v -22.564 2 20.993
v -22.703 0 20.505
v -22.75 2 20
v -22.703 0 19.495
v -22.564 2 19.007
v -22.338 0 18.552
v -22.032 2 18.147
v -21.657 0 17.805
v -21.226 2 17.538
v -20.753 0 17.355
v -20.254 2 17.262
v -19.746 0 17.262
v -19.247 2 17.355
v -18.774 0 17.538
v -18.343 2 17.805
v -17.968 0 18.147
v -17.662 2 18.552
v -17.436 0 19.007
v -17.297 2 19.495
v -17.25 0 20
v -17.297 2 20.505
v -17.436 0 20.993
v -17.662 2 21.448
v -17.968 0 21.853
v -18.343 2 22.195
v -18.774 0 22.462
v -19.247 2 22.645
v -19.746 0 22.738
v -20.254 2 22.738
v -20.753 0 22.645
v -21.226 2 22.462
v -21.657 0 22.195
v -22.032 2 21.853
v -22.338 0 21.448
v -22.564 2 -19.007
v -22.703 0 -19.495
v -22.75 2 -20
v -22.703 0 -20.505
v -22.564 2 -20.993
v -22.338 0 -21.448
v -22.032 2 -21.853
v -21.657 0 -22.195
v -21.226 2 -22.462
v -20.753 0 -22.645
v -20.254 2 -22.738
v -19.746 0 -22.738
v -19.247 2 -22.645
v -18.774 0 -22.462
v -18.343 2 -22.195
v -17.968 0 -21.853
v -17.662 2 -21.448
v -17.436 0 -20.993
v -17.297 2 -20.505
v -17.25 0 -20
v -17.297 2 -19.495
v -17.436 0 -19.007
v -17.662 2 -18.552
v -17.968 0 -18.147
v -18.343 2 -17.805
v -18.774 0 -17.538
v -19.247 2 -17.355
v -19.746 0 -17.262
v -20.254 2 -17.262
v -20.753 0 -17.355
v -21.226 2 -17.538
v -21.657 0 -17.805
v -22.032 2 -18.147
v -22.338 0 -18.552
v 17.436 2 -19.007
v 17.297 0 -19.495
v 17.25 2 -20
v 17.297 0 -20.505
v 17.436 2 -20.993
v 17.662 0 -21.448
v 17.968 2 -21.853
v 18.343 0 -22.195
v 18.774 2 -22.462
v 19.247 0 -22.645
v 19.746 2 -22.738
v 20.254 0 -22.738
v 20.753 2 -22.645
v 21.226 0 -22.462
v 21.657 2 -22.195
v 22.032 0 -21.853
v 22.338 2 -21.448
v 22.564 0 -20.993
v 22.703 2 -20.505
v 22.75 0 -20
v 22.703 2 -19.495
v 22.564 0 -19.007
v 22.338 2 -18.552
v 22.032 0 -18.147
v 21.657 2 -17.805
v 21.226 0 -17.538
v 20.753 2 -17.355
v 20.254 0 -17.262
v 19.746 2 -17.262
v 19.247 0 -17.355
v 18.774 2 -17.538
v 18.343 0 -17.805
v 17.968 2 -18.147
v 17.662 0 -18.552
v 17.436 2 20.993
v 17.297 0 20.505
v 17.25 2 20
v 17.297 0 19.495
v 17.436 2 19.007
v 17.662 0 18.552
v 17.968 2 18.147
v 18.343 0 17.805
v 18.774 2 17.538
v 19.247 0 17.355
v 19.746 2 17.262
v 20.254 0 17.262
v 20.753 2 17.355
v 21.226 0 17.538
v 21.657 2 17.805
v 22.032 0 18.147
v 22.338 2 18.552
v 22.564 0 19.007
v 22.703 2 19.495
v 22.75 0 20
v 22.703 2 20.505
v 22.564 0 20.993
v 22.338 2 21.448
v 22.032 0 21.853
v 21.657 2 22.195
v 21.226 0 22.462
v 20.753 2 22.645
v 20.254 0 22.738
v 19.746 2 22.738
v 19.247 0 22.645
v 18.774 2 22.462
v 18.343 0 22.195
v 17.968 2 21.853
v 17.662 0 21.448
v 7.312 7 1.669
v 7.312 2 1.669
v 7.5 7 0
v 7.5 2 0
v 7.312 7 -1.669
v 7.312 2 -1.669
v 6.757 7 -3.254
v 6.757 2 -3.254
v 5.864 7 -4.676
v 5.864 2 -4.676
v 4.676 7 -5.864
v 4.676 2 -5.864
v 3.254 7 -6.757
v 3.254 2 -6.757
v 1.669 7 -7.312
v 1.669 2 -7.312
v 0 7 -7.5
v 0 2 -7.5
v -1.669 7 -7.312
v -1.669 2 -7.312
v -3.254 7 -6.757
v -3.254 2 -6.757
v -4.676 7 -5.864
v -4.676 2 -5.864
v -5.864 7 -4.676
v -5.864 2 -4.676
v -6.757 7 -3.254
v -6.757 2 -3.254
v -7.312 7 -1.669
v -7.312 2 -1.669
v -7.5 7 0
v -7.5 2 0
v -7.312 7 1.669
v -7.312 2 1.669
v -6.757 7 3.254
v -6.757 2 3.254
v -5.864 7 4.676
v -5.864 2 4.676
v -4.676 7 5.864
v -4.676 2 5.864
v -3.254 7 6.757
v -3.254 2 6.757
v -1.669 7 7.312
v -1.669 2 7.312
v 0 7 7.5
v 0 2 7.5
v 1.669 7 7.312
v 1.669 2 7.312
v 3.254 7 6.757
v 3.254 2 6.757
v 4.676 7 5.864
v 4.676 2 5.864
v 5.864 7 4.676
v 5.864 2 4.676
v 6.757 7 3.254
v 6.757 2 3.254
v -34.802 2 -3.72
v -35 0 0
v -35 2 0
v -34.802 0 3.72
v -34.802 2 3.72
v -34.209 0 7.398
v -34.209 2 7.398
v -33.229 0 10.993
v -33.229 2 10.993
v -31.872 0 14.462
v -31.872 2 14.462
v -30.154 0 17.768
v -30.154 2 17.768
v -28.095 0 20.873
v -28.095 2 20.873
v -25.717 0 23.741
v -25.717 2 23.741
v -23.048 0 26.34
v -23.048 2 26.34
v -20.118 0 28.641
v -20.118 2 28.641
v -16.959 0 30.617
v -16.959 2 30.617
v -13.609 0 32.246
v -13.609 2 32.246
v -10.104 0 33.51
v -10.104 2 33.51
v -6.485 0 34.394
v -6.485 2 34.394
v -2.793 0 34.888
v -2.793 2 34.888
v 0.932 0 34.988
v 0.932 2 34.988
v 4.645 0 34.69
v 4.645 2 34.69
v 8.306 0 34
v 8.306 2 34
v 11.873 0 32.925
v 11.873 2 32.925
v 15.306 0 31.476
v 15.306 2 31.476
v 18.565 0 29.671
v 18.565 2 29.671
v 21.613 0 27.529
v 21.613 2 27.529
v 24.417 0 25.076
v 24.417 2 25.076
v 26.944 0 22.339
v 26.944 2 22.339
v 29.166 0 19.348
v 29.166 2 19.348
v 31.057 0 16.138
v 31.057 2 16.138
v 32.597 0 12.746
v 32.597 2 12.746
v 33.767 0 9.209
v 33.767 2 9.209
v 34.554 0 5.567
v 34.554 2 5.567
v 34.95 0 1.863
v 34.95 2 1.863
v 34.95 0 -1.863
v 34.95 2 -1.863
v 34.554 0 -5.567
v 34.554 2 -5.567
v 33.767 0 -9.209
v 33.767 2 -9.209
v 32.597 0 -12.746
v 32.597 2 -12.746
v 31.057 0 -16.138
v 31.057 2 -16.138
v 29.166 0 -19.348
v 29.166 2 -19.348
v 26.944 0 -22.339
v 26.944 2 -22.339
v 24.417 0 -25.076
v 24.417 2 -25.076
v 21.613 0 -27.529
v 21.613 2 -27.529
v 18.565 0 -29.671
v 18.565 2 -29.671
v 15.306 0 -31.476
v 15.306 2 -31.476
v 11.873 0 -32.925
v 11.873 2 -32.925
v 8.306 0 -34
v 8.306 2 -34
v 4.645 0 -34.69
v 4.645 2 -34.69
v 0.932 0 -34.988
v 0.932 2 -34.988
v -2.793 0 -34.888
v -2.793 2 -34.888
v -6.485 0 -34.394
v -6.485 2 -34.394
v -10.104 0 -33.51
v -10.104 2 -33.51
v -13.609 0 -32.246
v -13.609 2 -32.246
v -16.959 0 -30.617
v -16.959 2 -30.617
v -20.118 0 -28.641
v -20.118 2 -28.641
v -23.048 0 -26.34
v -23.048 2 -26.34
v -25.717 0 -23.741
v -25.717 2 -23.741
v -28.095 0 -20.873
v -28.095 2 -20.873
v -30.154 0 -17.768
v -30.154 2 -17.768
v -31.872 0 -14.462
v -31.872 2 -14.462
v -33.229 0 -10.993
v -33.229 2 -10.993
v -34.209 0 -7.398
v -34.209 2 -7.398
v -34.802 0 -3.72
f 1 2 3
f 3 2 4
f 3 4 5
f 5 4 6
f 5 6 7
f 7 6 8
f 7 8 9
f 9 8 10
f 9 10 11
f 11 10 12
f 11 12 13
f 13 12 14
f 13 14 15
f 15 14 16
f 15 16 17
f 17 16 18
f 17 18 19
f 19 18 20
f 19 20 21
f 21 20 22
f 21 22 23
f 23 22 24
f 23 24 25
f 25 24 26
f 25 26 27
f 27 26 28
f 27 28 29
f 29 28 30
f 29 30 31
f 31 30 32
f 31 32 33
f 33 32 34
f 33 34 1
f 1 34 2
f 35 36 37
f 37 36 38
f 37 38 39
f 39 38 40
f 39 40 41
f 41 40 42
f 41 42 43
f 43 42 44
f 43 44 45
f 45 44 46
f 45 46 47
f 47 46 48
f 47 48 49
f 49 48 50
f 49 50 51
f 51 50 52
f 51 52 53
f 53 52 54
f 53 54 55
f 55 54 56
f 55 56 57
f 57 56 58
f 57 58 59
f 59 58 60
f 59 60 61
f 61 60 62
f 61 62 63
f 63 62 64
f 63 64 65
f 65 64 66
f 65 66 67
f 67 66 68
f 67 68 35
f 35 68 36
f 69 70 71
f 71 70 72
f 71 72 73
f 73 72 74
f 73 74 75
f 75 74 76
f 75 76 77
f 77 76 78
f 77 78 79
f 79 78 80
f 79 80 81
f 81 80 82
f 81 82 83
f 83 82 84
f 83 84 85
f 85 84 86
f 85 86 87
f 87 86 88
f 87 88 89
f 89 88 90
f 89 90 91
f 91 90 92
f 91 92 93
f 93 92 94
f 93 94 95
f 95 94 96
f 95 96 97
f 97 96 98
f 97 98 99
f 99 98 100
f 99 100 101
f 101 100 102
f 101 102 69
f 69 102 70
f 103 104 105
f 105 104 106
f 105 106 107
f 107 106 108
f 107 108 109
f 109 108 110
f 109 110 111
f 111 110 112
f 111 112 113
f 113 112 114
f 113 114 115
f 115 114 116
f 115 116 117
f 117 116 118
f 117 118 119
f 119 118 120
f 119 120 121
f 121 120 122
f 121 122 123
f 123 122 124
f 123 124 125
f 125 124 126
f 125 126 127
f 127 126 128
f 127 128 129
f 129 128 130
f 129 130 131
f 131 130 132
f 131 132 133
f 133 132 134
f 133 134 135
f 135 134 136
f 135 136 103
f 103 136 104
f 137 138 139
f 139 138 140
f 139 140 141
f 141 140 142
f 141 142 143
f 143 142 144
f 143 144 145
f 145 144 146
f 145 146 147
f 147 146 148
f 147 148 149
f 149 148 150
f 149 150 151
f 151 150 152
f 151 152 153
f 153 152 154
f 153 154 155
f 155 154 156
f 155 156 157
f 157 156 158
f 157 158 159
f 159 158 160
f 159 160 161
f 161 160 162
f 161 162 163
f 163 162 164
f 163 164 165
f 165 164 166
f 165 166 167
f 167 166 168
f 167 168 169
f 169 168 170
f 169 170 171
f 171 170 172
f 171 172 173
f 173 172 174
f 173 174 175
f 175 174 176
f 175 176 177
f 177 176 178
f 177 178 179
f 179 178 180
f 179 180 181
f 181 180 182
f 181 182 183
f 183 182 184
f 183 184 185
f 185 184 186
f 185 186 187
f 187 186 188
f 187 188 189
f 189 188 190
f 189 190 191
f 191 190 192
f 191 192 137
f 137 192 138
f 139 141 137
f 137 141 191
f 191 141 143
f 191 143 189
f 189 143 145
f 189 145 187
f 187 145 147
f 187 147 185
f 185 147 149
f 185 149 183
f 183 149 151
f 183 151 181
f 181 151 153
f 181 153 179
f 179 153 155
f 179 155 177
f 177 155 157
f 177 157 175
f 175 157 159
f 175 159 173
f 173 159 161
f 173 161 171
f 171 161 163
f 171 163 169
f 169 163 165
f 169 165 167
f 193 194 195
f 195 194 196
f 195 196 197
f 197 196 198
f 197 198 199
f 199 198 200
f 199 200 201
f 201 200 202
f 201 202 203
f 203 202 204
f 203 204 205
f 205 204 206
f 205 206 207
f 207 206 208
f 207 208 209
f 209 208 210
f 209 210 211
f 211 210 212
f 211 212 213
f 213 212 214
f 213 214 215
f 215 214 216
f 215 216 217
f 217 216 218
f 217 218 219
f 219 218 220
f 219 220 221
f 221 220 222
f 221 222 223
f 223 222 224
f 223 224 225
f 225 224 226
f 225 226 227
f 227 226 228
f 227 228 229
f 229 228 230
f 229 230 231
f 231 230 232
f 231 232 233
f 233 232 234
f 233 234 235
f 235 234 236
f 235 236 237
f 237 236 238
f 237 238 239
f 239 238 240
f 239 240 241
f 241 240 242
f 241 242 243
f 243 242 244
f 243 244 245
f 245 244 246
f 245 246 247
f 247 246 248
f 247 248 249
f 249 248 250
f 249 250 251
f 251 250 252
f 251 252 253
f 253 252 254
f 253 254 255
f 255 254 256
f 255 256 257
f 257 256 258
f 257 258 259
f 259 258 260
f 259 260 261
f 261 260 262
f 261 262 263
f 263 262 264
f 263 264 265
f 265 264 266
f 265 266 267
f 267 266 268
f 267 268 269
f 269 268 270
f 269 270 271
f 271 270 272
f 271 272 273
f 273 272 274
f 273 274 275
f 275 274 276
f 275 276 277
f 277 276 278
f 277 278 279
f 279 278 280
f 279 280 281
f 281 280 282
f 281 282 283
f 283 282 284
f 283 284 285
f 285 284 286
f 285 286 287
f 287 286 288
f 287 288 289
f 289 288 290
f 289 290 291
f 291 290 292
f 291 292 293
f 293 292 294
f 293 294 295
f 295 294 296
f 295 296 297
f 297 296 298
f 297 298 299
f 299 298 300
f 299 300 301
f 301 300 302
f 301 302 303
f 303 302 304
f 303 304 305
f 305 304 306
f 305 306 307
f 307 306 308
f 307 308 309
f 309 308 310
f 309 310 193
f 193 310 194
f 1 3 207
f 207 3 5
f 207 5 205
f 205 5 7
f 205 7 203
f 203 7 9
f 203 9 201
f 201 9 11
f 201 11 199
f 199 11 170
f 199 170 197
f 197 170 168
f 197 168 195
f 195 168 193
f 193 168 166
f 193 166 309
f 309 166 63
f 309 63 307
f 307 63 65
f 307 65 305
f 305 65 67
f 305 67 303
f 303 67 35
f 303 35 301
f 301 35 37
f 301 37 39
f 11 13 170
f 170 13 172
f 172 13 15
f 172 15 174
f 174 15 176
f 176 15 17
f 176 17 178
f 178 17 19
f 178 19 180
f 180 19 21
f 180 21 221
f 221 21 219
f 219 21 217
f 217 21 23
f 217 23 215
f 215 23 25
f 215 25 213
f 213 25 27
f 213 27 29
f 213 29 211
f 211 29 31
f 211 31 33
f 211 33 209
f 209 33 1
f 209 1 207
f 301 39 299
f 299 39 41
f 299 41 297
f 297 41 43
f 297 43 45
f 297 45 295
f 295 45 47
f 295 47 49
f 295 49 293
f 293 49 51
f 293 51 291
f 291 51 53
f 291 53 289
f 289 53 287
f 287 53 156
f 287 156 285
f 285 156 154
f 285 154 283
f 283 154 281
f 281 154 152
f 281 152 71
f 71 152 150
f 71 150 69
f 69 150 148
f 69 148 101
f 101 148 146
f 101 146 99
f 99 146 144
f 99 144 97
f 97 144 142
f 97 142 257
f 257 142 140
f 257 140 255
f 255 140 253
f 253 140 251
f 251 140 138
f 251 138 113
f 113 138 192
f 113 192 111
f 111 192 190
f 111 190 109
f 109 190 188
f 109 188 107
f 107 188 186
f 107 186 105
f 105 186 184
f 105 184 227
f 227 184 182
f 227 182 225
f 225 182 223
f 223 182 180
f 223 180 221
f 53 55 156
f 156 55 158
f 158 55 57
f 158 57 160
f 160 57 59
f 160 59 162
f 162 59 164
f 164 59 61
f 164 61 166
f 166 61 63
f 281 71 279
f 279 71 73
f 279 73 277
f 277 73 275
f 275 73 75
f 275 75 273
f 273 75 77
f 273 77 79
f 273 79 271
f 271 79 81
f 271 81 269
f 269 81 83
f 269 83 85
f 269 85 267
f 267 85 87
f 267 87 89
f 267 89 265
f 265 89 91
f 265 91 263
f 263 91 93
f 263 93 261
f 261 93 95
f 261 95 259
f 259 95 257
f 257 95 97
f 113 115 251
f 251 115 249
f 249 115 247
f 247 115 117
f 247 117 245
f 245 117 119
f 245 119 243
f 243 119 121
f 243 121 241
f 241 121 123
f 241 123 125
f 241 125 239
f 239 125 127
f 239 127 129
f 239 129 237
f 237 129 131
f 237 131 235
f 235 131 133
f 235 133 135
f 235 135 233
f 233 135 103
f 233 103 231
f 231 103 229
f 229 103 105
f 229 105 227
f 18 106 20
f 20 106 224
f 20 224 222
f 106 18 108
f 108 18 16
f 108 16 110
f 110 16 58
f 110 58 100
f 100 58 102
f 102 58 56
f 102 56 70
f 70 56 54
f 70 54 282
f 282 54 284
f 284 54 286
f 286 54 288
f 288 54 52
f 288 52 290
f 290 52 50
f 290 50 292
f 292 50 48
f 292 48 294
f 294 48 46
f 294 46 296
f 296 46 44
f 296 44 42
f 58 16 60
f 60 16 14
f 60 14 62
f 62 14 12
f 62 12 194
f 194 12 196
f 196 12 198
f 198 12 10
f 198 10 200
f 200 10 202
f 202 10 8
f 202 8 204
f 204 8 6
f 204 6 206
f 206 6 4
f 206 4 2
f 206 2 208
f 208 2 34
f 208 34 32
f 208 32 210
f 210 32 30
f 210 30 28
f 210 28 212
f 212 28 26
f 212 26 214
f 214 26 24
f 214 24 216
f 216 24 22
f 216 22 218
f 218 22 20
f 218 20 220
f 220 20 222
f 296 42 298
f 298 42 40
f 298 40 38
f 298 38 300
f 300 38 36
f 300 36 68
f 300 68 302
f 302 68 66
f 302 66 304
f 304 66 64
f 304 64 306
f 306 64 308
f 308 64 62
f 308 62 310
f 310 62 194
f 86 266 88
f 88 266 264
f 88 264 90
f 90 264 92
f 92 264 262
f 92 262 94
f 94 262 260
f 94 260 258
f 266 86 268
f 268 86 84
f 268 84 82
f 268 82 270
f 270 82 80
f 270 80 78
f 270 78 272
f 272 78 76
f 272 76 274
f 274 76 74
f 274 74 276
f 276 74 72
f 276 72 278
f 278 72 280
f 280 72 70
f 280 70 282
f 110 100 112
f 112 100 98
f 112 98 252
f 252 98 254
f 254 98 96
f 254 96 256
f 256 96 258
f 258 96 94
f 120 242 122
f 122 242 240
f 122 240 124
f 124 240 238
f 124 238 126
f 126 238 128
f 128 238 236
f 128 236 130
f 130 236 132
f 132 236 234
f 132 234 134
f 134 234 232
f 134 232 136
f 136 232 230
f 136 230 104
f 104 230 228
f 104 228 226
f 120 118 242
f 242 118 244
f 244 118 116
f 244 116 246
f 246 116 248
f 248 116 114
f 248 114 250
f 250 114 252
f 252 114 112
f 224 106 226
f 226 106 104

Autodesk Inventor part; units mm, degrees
ref_plane "YZ Plane" through (0, 0, 0) normal (1, 0, 0) x (0, 1, 0)
ref_plane "XZ Plane" through (0, 0, 0) normal (0, 1, 0) x (-1, 0, 0)
ref_plane "XY Plane" through (0, 0, 0) normal (0, 0, 1) x (1, 0, 0)
sketch "Sketch1" plane through (0, 0, 0) normal (0, 1, 0) x (-1, 0, 0)
  circle A0 centre (0, 0) radius 35
  dimension "d0" = 70
extrude "Extrusion1" add sketch "Sketch1" along normal blind 2
sketch "Sketch2" plane through (0, 2, 0) normal (0, 1, 0) x (1, 0, 0)
  circle A0 centre (0, 0) radius 7.5
  dimension "d3" = 15
extrude "Extrusion2" add sketch "Sketch2" along normal blind 5
sketch "Sketch3" plane through (0, 0, 0) normal (0, -1, 0) x (1, 0, 0)
  line L0 (22.7941, 0) -> (-22.7941, 0) construction
  line L1 (0, 29.7059) -> (0, -29.7059) construction
  point P0 (0, 0)
  point P1 (20, 20)
  point P2 (20, -20)
  point P3 (-20, -20)
  point P4 (-20, 20)
  point P5 (0, 0)
  dimension "d6" = 40
  dimension "d7" = 40
  dimension "d8" = 20
  dimension "d9" = 20
hole "Hole1" at (20, 0, 20) at (20, 0, -20) at (-20, 0, -20) at (-20, 0, 20) direction (0, 1, 0) diameter 5.5 end through all
properties part number "FlanschSchablone"
